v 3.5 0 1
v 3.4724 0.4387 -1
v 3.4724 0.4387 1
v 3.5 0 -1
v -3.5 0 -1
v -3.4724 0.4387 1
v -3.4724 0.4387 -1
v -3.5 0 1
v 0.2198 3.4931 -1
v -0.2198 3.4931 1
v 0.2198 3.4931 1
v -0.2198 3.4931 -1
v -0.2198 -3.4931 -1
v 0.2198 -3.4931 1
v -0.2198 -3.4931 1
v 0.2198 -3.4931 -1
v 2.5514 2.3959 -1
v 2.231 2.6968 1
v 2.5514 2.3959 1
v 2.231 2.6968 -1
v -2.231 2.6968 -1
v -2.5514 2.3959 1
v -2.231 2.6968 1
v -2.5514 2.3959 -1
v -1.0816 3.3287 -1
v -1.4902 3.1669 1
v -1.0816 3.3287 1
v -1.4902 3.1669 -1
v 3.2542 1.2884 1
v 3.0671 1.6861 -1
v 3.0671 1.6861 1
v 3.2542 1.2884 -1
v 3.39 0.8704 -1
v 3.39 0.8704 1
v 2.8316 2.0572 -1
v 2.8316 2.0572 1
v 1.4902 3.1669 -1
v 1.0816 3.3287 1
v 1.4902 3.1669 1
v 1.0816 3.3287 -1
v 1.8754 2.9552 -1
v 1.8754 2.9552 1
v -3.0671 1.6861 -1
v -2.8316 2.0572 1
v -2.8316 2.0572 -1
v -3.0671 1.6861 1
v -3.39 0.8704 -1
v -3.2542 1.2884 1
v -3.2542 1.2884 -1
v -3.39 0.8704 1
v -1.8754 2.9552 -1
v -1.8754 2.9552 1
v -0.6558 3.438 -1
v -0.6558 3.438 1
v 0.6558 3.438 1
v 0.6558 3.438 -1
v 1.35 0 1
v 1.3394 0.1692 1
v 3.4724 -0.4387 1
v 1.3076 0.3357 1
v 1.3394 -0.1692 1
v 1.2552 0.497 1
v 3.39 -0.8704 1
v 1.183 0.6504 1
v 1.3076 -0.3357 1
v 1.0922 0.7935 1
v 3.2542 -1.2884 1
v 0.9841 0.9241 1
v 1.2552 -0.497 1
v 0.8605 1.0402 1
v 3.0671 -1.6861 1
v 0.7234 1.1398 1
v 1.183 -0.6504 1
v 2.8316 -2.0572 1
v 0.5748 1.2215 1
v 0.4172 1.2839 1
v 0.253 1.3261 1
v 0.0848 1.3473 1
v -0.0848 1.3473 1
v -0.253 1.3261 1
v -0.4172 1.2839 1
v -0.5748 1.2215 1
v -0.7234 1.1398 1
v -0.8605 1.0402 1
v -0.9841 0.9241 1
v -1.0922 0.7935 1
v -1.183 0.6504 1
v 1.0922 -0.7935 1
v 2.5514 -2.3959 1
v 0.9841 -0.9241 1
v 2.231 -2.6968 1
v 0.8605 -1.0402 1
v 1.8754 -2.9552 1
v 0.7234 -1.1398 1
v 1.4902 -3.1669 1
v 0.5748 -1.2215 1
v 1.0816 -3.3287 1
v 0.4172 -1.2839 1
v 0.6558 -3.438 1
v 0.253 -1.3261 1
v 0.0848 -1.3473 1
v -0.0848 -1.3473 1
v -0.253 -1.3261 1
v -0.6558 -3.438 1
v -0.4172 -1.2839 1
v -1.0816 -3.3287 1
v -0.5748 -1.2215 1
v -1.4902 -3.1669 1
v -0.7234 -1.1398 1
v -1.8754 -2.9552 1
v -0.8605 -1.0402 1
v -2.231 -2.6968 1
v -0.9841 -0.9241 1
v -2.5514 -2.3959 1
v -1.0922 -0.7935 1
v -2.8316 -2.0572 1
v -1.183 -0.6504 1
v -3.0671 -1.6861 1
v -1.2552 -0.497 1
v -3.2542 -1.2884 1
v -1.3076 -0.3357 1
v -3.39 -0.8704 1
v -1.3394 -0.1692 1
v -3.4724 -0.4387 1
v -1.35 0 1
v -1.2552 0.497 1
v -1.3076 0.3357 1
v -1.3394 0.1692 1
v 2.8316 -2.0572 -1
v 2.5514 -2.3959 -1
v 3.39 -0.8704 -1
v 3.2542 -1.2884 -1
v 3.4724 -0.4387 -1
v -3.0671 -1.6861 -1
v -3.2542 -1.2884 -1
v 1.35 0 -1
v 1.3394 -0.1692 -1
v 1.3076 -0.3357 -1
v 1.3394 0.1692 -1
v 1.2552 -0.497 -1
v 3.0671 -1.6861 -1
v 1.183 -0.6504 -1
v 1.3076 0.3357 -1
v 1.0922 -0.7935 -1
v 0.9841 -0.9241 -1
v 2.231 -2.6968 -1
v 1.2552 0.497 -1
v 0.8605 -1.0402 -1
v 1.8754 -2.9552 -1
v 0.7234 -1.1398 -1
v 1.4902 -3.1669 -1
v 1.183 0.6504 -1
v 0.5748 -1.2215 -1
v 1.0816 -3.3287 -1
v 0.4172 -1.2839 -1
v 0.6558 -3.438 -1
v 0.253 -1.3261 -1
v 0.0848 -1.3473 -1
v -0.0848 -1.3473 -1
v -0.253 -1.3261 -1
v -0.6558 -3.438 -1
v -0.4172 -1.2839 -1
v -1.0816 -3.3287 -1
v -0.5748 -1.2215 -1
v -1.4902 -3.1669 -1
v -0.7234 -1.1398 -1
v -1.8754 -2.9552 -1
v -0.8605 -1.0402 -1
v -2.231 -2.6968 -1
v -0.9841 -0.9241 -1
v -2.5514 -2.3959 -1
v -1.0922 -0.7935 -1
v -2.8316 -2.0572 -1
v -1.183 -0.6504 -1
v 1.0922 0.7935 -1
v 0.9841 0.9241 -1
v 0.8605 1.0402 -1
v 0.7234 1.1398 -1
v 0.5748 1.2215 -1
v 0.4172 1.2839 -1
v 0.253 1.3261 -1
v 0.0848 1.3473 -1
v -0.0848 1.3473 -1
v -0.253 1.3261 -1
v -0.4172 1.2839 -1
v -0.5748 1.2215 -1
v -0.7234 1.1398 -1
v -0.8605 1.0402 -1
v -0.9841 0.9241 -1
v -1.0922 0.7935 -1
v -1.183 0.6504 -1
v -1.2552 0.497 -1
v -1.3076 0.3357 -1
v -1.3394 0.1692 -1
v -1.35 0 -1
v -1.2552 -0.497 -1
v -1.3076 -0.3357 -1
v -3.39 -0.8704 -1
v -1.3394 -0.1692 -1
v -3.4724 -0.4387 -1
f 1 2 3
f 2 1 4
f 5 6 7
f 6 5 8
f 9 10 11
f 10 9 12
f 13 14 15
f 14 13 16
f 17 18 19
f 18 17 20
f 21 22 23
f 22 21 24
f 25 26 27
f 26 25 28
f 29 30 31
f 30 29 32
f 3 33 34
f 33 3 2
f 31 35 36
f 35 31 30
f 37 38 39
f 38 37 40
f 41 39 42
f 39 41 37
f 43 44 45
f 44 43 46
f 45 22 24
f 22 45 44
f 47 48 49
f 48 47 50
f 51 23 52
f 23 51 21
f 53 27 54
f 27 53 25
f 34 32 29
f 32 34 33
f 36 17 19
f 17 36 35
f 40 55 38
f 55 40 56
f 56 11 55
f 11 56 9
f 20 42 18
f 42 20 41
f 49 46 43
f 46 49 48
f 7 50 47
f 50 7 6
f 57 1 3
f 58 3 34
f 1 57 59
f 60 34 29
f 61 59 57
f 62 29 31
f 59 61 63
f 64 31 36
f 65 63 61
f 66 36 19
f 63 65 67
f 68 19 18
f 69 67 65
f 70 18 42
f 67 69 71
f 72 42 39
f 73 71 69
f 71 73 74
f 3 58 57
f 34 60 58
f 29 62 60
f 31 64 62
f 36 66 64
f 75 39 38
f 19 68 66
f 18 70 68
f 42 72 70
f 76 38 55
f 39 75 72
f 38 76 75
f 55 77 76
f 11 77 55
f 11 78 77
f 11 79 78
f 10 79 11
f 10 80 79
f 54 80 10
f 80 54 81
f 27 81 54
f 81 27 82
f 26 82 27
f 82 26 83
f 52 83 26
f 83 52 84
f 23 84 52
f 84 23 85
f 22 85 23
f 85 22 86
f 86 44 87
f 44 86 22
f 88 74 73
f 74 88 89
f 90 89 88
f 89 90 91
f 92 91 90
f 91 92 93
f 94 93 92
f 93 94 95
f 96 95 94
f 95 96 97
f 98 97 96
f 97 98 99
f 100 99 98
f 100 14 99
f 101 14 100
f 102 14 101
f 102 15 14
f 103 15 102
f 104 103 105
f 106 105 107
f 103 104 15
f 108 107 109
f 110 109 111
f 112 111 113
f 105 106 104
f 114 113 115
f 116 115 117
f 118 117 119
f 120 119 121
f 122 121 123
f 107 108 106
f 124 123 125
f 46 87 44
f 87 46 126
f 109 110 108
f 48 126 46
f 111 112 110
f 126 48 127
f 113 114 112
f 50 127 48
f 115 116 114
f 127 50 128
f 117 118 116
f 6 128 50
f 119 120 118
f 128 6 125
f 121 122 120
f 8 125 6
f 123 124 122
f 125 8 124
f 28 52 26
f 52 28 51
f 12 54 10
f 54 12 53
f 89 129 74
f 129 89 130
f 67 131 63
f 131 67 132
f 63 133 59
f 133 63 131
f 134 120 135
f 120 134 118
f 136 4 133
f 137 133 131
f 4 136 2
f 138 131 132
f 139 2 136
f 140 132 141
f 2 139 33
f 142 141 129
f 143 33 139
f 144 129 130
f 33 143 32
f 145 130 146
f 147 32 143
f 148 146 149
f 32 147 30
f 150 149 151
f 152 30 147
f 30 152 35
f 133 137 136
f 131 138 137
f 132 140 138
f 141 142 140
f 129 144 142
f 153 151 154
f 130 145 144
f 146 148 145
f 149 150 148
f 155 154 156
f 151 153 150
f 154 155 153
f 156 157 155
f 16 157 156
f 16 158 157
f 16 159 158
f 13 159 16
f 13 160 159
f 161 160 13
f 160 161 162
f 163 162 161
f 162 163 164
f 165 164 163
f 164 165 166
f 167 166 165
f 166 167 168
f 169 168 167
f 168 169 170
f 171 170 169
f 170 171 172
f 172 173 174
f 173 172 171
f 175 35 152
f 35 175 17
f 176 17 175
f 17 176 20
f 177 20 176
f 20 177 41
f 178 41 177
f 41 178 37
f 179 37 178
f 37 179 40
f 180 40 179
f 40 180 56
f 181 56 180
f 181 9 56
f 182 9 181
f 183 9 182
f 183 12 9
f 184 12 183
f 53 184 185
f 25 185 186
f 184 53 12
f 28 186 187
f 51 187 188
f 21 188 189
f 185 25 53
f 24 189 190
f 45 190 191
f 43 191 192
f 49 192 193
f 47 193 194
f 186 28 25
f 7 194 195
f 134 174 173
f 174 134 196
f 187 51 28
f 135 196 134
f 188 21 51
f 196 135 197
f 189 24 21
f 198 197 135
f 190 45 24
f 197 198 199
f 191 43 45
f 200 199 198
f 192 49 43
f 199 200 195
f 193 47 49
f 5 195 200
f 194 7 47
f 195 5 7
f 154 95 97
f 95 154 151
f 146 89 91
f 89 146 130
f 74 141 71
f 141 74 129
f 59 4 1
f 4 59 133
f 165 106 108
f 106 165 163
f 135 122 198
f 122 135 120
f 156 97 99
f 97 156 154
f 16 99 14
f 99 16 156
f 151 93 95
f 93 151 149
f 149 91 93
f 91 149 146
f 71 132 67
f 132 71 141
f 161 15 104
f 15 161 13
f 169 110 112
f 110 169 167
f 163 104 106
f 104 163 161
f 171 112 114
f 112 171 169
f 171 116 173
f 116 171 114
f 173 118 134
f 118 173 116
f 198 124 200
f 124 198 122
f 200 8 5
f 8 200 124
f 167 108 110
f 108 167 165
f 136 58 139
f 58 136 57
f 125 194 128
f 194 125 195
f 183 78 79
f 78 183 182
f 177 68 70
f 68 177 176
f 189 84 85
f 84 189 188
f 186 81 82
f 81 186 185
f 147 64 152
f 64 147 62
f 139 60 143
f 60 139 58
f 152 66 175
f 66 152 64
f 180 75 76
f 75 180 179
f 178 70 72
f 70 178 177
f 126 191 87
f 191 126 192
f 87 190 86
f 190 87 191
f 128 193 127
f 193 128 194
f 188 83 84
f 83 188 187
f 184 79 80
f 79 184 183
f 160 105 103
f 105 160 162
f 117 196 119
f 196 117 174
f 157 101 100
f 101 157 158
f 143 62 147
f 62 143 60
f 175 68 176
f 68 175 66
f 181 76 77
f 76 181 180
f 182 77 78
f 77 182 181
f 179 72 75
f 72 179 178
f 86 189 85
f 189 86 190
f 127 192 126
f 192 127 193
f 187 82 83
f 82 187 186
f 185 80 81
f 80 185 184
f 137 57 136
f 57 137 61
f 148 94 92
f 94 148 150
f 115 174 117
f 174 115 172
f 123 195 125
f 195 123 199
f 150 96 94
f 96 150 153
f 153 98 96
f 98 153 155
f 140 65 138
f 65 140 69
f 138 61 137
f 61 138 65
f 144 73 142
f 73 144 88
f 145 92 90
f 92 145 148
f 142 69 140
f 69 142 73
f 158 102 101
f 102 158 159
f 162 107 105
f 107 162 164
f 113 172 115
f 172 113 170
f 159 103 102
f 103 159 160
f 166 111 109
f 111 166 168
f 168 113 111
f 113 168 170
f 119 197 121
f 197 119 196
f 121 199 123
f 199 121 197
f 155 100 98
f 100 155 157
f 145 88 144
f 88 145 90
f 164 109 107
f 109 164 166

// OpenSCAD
$fn = 50;


difference() {
	union() {
		translate(v = [0, 0, -1.0000000000]) {
			cylinder(h = 2, r = 3.5000000000);
		}
	}
	union() {
		translate(v = [0, 0, -100.0000000000]) {
			cylinder(h = 200, r = 1.3500000000);
		}
	}
}
